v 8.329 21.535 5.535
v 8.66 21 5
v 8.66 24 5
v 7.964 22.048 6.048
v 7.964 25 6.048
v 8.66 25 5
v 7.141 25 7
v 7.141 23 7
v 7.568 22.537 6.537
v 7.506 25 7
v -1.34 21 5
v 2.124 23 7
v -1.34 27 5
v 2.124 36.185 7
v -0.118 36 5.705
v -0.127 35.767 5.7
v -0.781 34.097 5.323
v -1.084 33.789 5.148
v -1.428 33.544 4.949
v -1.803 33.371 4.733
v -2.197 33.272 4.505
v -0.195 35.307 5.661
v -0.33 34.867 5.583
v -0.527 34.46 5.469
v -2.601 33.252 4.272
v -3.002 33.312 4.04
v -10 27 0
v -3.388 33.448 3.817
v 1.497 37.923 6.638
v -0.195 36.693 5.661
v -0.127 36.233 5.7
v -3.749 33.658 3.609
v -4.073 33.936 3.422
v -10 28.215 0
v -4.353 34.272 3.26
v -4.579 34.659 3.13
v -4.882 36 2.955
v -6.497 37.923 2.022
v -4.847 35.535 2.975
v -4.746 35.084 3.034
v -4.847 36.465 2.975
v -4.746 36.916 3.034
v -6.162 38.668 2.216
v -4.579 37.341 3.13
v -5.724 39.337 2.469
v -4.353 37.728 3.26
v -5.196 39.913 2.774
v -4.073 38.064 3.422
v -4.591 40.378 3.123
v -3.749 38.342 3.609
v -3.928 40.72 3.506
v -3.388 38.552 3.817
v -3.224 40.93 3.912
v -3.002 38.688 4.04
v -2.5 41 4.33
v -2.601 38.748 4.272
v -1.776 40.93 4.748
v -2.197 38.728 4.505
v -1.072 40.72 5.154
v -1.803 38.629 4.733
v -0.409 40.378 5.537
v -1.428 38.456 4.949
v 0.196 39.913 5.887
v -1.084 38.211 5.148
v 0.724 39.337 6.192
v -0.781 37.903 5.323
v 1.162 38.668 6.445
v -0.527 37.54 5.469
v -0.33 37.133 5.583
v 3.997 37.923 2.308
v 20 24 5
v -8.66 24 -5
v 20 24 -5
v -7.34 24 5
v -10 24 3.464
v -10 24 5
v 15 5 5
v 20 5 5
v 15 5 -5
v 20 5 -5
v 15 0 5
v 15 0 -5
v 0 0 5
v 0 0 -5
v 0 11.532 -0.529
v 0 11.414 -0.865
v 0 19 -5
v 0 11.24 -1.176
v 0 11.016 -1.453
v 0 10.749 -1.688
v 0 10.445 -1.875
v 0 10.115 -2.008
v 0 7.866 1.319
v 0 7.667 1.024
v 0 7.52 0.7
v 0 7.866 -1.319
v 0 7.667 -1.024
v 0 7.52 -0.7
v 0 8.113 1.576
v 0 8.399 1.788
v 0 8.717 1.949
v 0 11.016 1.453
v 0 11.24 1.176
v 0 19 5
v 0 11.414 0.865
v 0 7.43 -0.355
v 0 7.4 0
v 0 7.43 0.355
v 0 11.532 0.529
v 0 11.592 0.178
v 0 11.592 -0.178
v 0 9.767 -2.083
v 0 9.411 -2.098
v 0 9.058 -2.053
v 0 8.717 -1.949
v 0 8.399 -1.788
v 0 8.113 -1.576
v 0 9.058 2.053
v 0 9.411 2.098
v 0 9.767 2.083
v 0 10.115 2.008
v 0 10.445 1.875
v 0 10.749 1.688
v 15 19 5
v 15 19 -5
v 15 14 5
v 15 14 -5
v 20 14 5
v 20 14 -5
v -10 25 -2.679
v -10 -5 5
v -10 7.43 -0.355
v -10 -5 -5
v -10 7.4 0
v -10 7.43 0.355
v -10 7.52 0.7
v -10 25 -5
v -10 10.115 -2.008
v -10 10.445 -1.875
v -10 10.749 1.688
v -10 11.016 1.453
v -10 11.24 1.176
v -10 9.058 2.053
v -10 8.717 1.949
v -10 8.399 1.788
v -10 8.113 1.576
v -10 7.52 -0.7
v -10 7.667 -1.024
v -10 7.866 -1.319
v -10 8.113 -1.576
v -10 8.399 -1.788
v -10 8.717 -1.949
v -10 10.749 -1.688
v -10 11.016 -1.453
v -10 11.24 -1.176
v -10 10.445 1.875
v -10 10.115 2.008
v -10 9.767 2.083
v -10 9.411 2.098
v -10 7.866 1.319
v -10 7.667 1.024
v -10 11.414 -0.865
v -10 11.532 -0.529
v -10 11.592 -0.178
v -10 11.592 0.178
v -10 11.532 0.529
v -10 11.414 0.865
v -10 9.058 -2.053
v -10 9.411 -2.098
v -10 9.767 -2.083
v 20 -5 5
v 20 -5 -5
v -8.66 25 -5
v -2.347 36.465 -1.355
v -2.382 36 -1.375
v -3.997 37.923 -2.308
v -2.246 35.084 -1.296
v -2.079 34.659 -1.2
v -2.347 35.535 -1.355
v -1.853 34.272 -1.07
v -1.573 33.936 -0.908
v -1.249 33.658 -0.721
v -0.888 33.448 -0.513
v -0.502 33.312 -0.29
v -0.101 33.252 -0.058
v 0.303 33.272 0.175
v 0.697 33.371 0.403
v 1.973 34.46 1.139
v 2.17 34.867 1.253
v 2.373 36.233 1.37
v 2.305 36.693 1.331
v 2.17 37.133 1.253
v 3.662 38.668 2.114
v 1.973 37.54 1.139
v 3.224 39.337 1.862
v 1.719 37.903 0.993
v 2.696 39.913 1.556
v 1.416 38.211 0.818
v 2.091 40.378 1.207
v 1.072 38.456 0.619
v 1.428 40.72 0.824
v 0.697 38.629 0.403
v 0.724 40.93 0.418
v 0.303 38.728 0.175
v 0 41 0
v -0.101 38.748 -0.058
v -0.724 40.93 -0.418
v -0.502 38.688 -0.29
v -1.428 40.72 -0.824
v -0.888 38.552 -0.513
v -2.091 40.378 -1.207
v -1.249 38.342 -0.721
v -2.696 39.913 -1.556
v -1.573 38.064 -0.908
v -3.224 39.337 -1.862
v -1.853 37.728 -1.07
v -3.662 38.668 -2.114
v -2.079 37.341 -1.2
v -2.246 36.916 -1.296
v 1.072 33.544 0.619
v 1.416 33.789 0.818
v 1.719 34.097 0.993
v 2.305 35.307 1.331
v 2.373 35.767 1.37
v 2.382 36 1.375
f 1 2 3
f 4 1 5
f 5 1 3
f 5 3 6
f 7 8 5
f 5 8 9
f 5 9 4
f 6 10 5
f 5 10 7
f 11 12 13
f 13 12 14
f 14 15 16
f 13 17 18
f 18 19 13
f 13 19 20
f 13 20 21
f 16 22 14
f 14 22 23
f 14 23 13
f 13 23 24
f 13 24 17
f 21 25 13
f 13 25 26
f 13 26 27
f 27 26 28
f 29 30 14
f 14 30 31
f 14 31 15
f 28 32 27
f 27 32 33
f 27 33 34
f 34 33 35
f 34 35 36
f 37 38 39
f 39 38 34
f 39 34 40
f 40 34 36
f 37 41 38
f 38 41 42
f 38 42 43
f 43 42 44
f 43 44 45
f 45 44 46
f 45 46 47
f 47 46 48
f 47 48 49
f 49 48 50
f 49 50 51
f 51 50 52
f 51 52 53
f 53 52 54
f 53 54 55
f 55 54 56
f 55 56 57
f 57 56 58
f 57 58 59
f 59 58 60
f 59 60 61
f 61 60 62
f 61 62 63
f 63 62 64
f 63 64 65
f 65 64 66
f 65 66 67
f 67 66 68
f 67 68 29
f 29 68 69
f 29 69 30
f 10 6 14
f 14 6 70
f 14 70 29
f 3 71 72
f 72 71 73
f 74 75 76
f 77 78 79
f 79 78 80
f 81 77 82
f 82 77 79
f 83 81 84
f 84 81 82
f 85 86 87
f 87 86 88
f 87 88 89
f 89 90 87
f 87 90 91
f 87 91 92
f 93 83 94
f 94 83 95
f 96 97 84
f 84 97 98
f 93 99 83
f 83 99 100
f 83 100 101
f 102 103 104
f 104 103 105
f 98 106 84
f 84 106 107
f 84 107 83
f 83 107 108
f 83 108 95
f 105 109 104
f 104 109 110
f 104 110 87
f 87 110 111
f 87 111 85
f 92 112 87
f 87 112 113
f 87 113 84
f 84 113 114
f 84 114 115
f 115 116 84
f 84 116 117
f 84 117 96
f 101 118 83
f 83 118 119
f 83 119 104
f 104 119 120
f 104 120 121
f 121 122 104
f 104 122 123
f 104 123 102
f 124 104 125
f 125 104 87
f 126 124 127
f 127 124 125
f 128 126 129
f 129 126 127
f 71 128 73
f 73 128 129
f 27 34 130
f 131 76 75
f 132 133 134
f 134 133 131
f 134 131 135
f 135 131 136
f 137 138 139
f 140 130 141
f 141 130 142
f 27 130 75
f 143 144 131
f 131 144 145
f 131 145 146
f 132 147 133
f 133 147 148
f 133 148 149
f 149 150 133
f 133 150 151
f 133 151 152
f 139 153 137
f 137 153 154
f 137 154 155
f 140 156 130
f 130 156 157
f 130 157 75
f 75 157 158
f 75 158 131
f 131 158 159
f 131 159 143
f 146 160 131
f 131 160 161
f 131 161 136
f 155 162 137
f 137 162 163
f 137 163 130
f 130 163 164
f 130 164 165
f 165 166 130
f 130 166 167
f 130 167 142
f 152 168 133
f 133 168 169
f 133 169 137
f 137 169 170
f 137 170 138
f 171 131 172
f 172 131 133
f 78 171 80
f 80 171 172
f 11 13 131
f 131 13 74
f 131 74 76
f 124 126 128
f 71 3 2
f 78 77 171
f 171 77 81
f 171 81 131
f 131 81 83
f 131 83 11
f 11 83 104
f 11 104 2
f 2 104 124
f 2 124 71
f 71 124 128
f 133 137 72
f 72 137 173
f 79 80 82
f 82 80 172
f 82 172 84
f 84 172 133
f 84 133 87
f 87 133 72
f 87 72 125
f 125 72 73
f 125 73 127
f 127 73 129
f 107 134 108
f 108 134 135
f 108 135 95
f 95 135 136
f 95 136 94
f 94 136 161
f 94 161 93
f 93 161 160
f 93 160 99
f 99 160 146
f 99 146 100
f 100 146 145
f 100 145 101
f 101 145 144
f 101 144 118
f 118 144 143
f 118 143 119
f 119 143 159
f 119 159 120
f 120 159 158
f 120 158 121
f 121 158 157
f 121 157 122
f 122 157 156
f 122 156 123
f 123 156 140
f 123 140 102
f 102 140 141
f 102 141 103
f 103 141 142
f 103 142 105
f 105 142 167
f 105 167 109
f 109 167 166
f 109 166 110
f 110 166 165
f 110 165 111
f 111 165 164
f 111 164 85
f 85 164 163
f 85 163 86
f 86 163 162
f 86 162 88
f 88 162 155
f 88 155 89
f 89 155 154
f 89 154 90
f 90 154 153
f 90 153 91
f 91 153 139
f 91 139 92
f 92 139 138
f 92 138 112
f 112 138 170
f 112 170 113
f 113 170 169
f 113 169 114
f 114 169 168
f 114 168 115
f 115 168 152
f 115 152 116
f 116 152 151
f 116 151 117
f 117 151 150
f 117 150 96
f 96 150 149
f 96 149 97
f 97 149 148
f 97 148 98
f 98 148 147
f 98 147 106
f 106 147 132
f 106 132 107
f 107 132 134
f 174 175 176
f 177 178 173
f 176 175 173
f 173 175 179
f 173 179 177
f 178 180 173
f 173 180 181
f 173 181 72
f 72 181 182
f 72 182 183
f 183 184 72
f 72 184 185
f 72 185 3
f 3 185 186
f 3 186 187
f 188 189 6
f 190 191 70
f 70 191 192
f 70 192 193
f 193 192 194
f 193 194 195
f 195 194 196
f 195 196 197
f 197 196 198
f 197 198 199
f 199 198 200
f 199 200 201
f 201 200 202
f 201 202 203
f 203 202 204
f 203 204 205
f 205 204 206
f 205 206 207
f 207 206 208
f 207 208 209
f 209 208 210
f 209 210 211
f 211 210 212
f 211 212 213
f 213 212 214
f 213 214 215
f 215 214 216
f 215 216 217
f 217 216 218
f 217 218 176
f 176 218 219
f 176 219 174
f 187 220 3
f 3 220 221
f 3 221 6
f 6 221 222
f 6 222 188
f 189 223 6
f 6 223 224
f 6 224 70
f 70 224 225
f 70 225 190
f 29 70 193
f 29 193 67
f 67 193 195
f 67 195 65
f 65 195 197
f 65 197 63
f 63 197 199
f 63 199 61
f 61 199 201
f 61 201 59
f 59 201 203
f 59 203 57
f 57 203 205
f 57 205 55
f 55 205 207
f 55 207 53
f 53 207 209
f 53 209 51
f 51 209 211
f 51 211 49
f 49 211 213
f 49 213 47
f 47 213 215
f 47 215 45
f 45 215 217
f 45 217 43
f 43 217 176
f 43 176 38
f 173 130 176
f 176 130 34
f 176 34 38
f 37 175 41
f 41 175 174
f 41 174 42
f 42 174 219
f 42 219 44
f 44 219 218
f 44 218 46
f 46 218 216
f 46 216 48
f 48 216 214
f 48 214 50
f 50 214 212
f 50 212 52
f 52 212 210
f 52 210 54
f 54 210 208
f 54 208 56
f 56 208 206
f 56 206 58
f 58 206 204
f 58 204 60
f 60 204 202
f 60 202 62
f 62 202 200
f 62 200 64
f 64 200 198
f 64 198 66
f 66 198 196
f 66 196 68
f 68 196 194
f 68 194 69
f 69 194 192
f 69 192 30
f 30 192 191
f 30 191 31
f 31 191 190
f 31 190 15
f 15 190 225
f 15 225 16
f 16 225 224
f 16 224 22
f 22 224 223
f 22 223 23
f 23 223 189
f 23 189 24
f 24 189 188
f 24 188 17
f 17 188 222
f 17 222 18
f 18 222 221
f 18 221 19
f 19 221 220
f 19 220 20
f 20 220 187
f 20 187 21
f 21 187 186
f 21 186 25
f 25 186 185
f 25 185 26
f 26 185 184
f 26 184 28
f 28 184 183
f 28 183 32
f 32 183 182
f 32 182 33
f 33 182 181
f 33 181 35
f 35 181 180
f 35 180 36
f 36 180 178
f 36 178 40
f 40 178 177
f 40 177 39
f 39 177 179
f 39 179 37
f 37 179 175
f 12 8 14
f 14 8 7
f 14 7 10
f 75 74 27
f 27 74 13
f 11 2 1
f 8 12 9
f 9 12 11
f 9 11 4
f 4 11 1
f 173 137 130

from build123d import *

# Parameters (mm, degrees)
BOSS_EXTRUDE1_DEPTH = 5
SKETCH2_R           = 2.1
CUT_EXTRUDE1_DEPTH  = 10
SKETCH3_R           = 10
BOSS_EXTRUDE2_DEPTH = 1
SKETCH4_R           = 2.75
BOSS_EXTRUDE3_DEPTH = 5
SKETCH5_W           = 50
SKETCH5_H           = 30
SKETCH5_W_2         = 34
SKETCH5_H_2         = 14
CUT_EXTRUDE2_DEPTH  = 52.14684741
CUT_EXTRUDE3_START  = -1
CUT_EXTRUDE3_DEPTH  = 1
CUT_EXTRUDE4_START  = -1
CUT_EXTRUDE4_DEPTH  = 1
CHAMFER1_SIZE       = 3
CHAMFER2_SIZE       = 3
SKETCH8_W           = 10.980685111
SKETCH8_H           = 18.946061275
CUT_EXTRUDE5_DEPTH  = 51.645829048
BOSS_EXTRUDE4_DEPTH = 1


with BuildPart() as part:
    # Sketch1 → Boss-Extrude1 (new, symmetric)
    with BuildSketch(Plane.XY):
        Polygon((15, 5), (15, 0), (0, 0), (0, 19), (15, 19), (15, 14), (20, 14), (20, 24), (-10, 24), (-10, -5), (20, -5), (20, 5), align=None)
    extrude(amount=BOSS_EXTRUDE1_DEPTH, both=True)

    # Sketch2 → Cut-Extrude1 (cut)
    with BuildSketch(Plane.ZY.offset(10)):
        with Locations(Location((0, 9.5, 0), (0, 0, 270))):
            Circle(SKETCH2_R)
    extrude(amount=-CUT_EXTRUDE1_DEPTH, mode=Mode.SUBTRACT)

    # Sketch3 → Boss-Extrude2 (add)
    with BuildSketch(Plane(origin=(0, 24, 0), x_dir=(1, 0, 0), z_dir=(0, 1, 0))):
        with Locations(Location((0, 0, 0), (0, 0, 180))):
            Circle(SKETCH3_R)
    extrude(amount=BOSS_EXTRUDE2_DEPTH)

    # Sketch4 → Boss-Extrude3 (add)
    with BuildSketch(Plane(origin=(0, 0, 0), x_dir=(0.866025403784438, 0, 0.500000000000001), z_dir=(-0.500000000000001, 0, 0.866025403784438))):
        with BuildLine():
            Line((10, 25), (-10, 25))
            Line((-10, 25), (-4.615384615, 37.923076923))
            ThreePointArc((-4.615384615, 37.923076923), (0, 41), (4.615384615, 37.923076923))
            Line((4.615384615, 37.923076923), (10, 25))
        make_face()
        with Locations((0, 36)):
            Circle(SKETCH4_R, mode=Mode.SUBTRACT)
    extrude(amount=BOSS_EXTRUDE3_DEPTH)

    # Sketch5 → Cut-Extrude2 (cut, through all)
    with BuildSketch(Plane.XZ.offset(5)):
        with Locations((5, 0)):
            Rectangle(SKETCH5_W, SKETCH5_H)
        with Locations((5, 0)):
            Rectangle(SKETCH5_W_2, SKETCH5_H_2, mode=Mode.SUBTRACT)
    extrude(amount=-CUT_EXTRUDE2_DEPTH, mode=Mode.SUBTRACT)

    # Sketch6 → Cut-Extrude3 (cut)
    with BuildSketch(Plane(origin=(0, 25, 0), x_dir=(1, 0, 0), z_dir=(0, 1, 0)).offset(CUT_EXTRUDE3_START)):
        with BuildLine():
            Line((7.141428429, 7), (-7.141428429, 7))
            ThreePointArc((-7.141428429, 7), (-7.963874195, 6.047868038), (-8.660254038, 5))
            Line((-8.660254038, 5), (8.660254038, -5))
            ThreePointArc((8.660254038, -5), (9.920851384, 1.255670262), (7.141428429, 7))
        make_face()
    extrude(amount=CUT_EXTRUDE3_DEPTH, mode=Mode.SUBTRACT)

    # Sketch7 → Cut-Extrude4 (cut)
    with BuildSketch(Plane(origin=(0, 25, 0), x_dir=(1, 0, 0), z_dir=(0, 1, 0)).offset(CUT_EXTRUDE4_START)):
        with BuildLine():
            Line((-7.141428429, -7), (2.124355653, -7))
            Line((2.124355653, -7), (-10, 0))
            ThreePointArc((-10, 0), (-9.257815193, -3.780589618), (-7.141428429, -7))
        make_face()
    extrude(amount=CUT_EXTRUDE4_DEPTH, mode=Mode.SUBTRACT)

    # Chamfer1
    # the kernel refuses this chamfer: 3 mm, written as the material it adds along each edge
    with BuildSketch(Plane(origin=(5.341682432, 24, 8.857524482), x_dir=(0.013747938305293134, 0.9996219169112968, -0.023812127644090214), z_dir=(-0.8660254037844382, 0, -0.500000000000001))) as chamfer1_piece_1_section:
        Polygon((CHAMFER1_SIZE * 0.999621916911, -CHAMFER1_SIZE * 0.0274958766106), (-CHAMFER1_SIZE * 0.0274958766106, -CHAMFER1_SIZE * 0.999621916911), (0, 0), align=None)
    chamfer1_piece_1 = extrude(amount=25.430097928, mode=Mode.PRIVATE)
    chamfer1_piece_1 = split(chamfer1_piece_1, bisect_by=Plane(origin=(-10, 25.699033003, 2.85935222), z_dir=(1, 0, 0)), keep=Keep.TOP, mode=Mode.PRIVATE)
    chamfer1_piece_1 = split(chamfer1_piece_1, bisect_by=Plane(origin=(-6.251324666, 25.699033003, 5), z_dir=(0, 0, -1)), keep=Keep.TOP, mode=Mode.PRIVATE)
    add(chamfer1_piece_1)
    with BuildSketch(Plane(origin=(5.341682432, 24, 8.857524482), x_dir=(0.013747938305293134, 0.9996219169112968, -0.023812127644090214), z_dir=(-0.8660254037844382, 0, -0.500000000000001))) as chamfer1_piece_2_section:
        Polygon((CHAMFER1_SIZE * 0.999621916911, -CHAMFER1_SIZE * 0.0274958766106), (-CHAMFER1_SIZE * 0.0274958766106, -CHAMFER1_SIZE * 0.999621916911), (0, 0), align=None)
    chamfer1_piece_2 = extrude(amount=25.430097928, mode=Mode.PRIVATE)
    chamfer1_piece_2 = split(chamfer1_piece_2, bisect_by=Plane(origin=(-10.676225886, 25, 0.518721071), z_dir=(0, 1, 0)), keep=Keep.TOP, mode=Mode.PRIVATE)
    chamfer1_piece_2 = split(chamfer1_piece_2, bisect_by=Plane(origin=(-11.252418357, 25.835555068, 0.186056192), z_dir=(0.7994080650317889, -0.38461538461538497, 0.46153846153846245)), keep=Keep.TOP, mode=Mode.PRIVATE)
    chamfer1_piece_2 = split(chamfer1_piece_2, bisect_by=Plane(origin=(-10.676225886, 25.558334336, 5), z_dir=(0, 0, -1)), keep=Keep.TOP, mode=Mode.PRIVATE)
    add(chamfer1_piece_2)

    # Chamfer2
    # the kernel refuses this chamfer: 3 mm, written as the material it adds along each edge
    with BuildSketch(Plane(origin=(16.375303002, 24, 5), x_dir=(0, -0.9996219169112968, -0.02749587661058648), z_dir=(-1, 0, 0))) as chamfer2_piece_1_section:
        Polygon((CHAMFER2_SIZE * 0.999621916911, CHAMFER2_SIZE * 0.0274958766106), (-CHAMFER2_SIZE * 0.0274958766106, CHAMFER2_SIZE * 0.999621916911), (0, 0), align=None)
    chamfer2_piece_1 = extrude(amount=25.430097928, mode=Mode.PRIVATE)
    chamfer2_piece_1 = chamfer2_piece_1 & Plane(origin=(0, 22.869371877, 0), x_dir=(-1, 0, 0), z_dir=(0, -1, 0)) * Cylinder(10, 63, mode=Mode.PRIVATE)
    chamfer2_piece_1 = split(chamfer2_piece_1, bisect_by=Plane(origin=(4.051544609, 22.869371877, 7), z_dir=(0, 0, -1)), keep=Keep.TOP, mode=Mode.PRIVATE)
    chamfer2_piece_1 = split(chamfer2_piece_1, bisect_by=Plane(origin=(3.023607395, 22.869371877, 7.519183235), z_dir=(0.500000000000001, 0, -0.8660254037844382)), keep=Keep.TOP, mode=Mode.PRIVATE)
    add(chamfer2_piece_1)

    # Sketch8 → Cut-Extrude5 (cut, through all)
    with BuildSketch(Plane.XZ.offset(5)):
        with Locations((-15.490342555, -3.686972965)):
            Rectangle(SKETCH8_W, SKETCH8_H)
    extrude(amount=-CUT_EXTRUDE5_DEPTH, mode=Mode.SUBTRACT)

    # Sketch9 → Boss-Extrude4 (add)
    with BuildSketch(Plane(origin=(0, 24, 0), x_dir=(1, 0, 0), z_dir=(0, 1, 0))):
        with BuildLine():
            Line((-8.660254038, 5), (-10, 5))
            Line((-10, 5), (-10, 0))
            ThreePointArc((-10, 0), (-9.659258263, 2.588190451), (-8.660254038, 5))
        make_face()
    extrude(amount=BOSS_EXTRUDE4_DEPTH)


solid = part.part
